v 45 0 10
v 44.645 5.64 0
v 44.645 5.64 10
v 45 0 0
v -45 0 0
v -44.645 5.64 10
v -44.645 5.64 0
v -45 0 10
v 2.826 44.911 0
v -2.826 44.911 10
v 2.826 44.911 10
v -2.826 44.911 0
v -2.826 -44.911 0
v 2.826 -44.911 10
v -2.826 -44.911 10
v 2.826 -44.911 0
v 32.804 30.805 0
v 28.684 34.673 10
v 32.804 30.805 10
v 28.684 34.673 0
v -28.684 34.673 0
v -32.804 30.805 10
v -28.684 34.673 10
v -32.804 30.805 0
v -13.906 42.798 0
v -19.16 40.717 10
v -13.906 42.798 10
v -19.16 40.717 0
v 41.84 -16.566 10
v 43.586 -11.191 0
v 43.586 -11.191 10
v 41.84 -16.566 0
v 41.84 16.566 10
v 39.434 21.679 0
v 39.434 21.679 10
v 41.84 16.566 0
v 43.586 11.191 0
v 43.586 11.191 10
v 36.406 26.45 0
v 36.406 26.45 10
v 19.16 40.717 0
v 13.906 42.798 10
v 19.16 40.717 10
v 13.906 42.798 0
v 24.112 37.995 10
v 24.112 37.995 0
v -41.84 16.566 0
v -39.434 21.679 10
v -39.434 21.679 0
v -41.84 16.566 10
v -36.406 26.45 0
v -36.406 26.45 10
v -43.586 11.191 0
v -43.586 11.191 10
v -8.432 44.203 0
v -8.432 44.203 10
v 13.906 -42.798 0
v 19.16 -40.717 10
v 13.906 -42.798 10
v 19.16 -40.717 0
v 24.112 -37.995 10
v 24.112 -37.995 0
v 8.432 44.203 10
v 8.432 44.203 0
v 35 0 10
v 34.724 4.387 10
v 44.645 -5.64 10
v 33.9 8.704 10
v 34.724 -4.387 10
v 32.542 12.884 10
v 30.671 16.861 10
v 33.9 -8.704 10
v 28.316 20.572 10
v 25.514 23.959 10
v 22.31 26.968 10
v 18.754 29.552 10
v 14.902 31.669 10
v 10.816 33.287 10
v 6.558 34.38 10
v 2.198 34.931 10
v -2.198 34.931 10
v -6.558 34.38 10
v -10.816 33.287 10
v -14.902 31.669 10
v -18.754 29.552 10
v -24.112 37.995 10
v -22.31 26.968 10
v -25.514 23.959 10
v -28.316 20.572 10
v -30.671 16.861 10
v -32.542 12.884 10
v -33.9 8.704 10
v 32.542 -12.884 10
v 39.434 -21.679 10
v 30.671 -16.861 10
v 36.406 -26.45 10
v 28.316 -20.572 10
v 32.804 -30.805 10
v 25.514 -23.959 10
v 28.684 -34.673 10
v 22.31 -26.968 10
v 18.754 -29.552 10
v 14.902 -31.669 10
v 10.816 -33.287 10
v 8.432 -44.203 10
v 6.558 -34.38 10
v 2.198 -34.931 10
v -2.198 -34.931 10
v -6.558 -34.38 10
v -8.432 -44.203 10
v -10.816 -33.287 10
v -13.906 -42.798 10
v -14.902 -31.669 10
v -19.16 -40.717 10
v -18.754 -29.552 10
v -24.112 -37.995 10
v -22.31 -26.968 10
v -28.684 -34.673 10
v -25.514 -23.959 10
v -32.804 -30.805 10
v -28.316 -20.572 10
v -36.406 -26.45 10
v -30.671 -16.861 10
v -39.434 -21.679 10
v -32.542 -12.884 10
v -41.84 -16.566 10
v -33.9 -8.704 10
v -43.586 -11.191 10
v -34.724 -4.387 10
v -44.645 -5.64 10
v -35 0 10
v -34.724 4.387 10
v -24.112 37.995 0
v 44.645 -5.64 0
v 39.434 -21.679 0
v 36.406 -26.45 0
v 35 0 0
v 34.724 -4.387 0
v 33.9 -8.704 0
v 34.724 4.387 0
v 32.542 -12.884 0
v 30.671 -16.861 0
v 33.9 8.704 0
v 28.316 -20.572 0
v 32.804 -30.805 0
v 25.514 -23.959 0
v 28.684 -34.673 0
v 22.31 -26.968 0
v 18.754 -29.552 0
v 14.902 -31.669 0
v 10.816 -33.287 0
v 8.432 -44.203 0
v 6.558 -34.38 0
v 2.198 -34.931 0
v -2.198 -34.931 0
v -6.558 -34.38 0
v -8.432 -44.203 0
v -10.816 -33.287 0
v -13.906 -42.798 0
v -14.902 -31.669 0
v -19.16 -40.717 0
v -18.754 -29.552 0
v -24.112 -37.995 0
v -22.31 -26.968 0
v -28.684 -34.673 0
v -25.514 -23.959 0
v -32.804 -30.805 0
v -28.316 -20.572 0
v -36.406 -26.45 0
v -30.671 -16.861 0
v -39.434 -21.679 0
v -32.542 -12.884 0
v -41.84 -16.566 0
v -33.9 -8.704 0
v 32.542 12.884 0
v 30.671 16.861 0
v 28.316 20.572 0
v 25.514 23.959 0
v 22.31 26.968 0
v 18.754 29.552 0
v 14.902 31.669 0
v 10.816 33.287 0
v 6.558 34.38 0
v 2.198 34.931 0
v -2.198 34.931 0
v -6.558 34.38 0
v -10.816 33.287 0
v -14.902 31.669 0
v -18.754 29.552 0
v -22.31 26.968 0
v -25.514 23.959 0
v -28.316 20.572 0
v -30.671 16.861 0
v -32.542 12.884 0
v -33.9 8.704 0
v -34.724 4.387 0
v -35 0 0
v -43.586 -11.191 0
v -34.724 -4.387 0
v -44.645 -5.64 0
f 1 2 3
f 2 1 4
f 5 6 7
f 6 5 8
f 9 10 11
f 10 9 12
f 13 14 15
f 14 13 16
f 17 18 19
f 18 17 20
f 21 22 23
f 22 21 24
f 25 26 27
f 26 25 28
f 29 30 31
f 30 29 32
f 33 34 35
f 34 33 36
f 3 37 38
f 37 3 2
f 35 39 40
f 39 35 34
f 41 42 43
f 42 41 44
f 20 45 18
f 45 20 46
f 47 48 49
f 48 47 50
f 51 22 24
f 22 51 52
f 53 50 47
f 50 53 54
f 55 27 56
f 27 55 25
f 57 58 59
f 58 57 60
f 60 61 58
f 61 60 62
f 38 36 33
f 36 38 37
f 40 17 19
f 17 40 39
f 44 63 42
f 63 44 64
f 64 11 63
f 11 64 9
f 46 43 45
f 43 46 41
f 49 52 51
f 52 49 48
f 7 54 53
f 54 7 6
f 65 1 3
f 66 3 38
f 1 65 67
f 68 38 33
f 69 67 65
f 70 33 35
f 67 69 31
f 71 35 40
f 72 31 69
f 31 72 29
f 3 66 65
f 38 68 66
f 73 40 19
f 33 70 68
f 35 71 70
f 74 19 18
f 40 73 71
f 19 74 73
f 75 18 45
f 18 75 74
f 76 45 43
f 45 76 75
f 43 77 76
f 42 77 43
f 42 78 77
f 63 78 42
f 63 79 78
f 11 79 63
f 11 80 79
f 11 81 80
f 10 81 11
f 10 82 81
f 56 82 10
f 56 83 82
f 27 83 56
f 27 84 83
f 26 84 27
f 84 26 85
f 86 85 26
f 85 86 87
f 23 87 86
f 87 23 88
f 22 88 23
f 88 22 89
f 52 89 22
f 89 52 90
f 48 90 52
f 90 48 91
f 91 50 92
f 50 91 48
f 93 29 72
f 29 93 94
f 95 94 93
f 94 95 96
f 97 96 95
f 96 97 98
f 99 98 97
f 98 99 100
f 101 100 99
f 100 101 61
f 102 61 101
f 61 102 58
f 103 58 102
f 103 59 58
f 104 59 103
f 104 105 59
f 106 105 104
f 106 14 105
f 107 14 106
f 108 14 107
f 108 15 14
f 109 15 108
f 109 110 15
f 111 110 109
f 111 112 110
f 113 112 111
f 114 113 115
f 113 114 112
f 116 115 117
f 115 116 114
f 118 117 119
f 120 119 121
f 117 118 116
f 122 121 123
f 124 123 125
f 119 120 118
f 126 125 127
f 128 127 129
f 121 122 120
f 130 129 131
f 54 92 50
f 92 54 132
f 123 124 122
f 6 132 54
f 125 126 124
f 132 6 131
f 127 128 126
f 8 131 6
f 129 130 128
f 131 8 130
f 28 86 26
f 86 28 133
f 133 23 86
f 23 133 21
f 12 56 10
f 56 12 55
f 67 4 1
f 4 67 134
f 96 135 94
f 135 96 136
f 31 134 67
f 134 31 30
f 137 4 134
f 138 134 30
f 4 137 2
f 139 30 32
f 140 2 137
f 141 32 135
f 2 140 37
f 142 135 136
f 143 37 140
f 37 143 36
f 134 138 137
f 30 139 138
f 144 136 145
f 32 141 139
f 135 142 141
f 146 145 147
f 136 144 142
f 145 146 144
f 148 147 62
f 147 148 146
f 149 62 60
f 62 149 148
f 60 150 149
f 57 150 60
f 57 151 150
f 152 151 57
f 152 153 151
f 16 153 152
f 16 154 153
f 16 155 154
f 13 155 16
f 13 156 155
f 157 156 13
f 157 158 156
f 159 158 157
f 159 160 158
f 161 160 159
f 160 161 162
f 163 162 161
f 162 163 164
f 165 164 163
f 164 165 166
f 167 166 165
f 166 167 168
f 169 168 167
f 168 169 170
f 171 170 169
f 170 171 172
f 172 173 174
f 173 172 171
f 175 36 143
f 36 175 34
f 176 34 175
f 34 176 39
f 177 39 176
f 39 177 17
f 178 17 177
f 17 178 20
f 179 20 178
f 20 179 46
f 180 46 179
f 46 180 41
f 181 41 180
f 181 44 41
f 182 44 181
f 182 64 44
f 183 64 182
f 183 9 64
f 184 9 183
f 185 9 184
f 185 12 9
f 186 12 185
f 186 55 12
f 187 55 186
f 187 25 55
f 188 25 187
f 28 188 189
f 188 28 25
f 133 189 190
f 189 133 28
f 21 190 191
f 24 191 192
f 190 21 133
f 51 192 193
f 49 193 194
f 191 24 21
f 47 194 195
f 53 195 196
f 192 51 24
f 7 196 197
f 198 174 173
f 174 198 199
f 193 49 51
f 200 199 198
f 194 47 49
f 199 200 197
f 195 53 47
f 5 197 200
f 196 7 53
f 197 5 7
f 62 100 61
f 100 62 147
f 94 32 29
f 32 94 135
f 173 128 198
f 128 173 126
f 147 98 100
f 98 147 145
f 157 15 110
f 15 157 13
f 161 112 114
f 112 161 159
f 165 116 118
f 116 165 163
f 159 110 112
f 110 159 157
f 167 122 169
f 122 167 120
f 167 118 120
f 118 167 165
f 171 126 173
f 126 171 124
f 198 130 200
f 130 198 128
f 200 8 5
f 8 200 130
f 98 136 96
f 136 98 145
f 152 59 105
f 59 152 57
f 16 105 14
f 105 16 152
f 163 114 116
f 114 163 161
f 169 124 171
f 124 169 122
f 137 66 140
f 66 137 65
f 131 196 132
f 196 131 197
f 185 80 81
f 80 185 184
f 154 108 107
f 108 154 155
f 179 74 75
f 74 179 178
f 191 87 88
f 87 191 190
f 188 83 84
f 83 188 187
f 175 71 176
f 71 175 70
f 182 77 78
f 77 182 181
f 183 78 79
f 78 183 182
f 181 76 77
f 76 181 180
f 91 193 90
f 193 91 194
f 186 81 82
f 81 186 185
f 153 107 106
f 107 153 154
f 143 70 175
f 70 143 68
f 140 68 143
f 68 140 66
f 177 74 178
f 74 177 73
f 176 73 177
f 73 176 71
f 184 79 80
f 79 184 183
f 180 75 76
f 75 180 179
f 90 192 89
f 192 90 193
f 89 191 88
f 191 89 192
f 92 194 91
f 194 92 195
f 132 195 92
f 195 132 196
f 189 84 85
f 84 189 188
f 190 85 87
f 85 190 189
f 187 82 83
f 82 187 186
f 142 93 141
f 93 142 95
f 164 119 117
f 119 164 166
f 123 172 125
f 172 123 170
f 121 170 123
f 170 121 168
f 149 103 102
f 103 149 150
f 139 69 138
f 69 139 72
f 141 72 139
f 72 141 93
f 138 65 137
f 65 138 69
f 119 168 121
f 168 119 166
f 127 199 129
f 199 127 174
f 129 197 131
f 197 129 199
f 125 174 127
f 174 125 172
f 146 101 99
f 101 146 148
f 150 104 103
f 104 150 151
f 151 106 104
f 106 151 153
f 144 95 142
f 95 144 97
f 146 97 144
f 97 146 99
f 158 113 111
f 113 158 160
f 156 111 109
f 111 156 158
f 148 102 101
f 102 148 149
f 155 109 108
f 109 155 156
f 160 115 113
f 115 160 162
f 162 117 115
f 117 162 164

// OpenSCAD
$fn = 50;


difference() {
	union() {
		cylinder(h = 10, r = 45.0000000000);
	}
	union() {
		cylinder(h = 10, r = 35.0000000000);
	}
}
